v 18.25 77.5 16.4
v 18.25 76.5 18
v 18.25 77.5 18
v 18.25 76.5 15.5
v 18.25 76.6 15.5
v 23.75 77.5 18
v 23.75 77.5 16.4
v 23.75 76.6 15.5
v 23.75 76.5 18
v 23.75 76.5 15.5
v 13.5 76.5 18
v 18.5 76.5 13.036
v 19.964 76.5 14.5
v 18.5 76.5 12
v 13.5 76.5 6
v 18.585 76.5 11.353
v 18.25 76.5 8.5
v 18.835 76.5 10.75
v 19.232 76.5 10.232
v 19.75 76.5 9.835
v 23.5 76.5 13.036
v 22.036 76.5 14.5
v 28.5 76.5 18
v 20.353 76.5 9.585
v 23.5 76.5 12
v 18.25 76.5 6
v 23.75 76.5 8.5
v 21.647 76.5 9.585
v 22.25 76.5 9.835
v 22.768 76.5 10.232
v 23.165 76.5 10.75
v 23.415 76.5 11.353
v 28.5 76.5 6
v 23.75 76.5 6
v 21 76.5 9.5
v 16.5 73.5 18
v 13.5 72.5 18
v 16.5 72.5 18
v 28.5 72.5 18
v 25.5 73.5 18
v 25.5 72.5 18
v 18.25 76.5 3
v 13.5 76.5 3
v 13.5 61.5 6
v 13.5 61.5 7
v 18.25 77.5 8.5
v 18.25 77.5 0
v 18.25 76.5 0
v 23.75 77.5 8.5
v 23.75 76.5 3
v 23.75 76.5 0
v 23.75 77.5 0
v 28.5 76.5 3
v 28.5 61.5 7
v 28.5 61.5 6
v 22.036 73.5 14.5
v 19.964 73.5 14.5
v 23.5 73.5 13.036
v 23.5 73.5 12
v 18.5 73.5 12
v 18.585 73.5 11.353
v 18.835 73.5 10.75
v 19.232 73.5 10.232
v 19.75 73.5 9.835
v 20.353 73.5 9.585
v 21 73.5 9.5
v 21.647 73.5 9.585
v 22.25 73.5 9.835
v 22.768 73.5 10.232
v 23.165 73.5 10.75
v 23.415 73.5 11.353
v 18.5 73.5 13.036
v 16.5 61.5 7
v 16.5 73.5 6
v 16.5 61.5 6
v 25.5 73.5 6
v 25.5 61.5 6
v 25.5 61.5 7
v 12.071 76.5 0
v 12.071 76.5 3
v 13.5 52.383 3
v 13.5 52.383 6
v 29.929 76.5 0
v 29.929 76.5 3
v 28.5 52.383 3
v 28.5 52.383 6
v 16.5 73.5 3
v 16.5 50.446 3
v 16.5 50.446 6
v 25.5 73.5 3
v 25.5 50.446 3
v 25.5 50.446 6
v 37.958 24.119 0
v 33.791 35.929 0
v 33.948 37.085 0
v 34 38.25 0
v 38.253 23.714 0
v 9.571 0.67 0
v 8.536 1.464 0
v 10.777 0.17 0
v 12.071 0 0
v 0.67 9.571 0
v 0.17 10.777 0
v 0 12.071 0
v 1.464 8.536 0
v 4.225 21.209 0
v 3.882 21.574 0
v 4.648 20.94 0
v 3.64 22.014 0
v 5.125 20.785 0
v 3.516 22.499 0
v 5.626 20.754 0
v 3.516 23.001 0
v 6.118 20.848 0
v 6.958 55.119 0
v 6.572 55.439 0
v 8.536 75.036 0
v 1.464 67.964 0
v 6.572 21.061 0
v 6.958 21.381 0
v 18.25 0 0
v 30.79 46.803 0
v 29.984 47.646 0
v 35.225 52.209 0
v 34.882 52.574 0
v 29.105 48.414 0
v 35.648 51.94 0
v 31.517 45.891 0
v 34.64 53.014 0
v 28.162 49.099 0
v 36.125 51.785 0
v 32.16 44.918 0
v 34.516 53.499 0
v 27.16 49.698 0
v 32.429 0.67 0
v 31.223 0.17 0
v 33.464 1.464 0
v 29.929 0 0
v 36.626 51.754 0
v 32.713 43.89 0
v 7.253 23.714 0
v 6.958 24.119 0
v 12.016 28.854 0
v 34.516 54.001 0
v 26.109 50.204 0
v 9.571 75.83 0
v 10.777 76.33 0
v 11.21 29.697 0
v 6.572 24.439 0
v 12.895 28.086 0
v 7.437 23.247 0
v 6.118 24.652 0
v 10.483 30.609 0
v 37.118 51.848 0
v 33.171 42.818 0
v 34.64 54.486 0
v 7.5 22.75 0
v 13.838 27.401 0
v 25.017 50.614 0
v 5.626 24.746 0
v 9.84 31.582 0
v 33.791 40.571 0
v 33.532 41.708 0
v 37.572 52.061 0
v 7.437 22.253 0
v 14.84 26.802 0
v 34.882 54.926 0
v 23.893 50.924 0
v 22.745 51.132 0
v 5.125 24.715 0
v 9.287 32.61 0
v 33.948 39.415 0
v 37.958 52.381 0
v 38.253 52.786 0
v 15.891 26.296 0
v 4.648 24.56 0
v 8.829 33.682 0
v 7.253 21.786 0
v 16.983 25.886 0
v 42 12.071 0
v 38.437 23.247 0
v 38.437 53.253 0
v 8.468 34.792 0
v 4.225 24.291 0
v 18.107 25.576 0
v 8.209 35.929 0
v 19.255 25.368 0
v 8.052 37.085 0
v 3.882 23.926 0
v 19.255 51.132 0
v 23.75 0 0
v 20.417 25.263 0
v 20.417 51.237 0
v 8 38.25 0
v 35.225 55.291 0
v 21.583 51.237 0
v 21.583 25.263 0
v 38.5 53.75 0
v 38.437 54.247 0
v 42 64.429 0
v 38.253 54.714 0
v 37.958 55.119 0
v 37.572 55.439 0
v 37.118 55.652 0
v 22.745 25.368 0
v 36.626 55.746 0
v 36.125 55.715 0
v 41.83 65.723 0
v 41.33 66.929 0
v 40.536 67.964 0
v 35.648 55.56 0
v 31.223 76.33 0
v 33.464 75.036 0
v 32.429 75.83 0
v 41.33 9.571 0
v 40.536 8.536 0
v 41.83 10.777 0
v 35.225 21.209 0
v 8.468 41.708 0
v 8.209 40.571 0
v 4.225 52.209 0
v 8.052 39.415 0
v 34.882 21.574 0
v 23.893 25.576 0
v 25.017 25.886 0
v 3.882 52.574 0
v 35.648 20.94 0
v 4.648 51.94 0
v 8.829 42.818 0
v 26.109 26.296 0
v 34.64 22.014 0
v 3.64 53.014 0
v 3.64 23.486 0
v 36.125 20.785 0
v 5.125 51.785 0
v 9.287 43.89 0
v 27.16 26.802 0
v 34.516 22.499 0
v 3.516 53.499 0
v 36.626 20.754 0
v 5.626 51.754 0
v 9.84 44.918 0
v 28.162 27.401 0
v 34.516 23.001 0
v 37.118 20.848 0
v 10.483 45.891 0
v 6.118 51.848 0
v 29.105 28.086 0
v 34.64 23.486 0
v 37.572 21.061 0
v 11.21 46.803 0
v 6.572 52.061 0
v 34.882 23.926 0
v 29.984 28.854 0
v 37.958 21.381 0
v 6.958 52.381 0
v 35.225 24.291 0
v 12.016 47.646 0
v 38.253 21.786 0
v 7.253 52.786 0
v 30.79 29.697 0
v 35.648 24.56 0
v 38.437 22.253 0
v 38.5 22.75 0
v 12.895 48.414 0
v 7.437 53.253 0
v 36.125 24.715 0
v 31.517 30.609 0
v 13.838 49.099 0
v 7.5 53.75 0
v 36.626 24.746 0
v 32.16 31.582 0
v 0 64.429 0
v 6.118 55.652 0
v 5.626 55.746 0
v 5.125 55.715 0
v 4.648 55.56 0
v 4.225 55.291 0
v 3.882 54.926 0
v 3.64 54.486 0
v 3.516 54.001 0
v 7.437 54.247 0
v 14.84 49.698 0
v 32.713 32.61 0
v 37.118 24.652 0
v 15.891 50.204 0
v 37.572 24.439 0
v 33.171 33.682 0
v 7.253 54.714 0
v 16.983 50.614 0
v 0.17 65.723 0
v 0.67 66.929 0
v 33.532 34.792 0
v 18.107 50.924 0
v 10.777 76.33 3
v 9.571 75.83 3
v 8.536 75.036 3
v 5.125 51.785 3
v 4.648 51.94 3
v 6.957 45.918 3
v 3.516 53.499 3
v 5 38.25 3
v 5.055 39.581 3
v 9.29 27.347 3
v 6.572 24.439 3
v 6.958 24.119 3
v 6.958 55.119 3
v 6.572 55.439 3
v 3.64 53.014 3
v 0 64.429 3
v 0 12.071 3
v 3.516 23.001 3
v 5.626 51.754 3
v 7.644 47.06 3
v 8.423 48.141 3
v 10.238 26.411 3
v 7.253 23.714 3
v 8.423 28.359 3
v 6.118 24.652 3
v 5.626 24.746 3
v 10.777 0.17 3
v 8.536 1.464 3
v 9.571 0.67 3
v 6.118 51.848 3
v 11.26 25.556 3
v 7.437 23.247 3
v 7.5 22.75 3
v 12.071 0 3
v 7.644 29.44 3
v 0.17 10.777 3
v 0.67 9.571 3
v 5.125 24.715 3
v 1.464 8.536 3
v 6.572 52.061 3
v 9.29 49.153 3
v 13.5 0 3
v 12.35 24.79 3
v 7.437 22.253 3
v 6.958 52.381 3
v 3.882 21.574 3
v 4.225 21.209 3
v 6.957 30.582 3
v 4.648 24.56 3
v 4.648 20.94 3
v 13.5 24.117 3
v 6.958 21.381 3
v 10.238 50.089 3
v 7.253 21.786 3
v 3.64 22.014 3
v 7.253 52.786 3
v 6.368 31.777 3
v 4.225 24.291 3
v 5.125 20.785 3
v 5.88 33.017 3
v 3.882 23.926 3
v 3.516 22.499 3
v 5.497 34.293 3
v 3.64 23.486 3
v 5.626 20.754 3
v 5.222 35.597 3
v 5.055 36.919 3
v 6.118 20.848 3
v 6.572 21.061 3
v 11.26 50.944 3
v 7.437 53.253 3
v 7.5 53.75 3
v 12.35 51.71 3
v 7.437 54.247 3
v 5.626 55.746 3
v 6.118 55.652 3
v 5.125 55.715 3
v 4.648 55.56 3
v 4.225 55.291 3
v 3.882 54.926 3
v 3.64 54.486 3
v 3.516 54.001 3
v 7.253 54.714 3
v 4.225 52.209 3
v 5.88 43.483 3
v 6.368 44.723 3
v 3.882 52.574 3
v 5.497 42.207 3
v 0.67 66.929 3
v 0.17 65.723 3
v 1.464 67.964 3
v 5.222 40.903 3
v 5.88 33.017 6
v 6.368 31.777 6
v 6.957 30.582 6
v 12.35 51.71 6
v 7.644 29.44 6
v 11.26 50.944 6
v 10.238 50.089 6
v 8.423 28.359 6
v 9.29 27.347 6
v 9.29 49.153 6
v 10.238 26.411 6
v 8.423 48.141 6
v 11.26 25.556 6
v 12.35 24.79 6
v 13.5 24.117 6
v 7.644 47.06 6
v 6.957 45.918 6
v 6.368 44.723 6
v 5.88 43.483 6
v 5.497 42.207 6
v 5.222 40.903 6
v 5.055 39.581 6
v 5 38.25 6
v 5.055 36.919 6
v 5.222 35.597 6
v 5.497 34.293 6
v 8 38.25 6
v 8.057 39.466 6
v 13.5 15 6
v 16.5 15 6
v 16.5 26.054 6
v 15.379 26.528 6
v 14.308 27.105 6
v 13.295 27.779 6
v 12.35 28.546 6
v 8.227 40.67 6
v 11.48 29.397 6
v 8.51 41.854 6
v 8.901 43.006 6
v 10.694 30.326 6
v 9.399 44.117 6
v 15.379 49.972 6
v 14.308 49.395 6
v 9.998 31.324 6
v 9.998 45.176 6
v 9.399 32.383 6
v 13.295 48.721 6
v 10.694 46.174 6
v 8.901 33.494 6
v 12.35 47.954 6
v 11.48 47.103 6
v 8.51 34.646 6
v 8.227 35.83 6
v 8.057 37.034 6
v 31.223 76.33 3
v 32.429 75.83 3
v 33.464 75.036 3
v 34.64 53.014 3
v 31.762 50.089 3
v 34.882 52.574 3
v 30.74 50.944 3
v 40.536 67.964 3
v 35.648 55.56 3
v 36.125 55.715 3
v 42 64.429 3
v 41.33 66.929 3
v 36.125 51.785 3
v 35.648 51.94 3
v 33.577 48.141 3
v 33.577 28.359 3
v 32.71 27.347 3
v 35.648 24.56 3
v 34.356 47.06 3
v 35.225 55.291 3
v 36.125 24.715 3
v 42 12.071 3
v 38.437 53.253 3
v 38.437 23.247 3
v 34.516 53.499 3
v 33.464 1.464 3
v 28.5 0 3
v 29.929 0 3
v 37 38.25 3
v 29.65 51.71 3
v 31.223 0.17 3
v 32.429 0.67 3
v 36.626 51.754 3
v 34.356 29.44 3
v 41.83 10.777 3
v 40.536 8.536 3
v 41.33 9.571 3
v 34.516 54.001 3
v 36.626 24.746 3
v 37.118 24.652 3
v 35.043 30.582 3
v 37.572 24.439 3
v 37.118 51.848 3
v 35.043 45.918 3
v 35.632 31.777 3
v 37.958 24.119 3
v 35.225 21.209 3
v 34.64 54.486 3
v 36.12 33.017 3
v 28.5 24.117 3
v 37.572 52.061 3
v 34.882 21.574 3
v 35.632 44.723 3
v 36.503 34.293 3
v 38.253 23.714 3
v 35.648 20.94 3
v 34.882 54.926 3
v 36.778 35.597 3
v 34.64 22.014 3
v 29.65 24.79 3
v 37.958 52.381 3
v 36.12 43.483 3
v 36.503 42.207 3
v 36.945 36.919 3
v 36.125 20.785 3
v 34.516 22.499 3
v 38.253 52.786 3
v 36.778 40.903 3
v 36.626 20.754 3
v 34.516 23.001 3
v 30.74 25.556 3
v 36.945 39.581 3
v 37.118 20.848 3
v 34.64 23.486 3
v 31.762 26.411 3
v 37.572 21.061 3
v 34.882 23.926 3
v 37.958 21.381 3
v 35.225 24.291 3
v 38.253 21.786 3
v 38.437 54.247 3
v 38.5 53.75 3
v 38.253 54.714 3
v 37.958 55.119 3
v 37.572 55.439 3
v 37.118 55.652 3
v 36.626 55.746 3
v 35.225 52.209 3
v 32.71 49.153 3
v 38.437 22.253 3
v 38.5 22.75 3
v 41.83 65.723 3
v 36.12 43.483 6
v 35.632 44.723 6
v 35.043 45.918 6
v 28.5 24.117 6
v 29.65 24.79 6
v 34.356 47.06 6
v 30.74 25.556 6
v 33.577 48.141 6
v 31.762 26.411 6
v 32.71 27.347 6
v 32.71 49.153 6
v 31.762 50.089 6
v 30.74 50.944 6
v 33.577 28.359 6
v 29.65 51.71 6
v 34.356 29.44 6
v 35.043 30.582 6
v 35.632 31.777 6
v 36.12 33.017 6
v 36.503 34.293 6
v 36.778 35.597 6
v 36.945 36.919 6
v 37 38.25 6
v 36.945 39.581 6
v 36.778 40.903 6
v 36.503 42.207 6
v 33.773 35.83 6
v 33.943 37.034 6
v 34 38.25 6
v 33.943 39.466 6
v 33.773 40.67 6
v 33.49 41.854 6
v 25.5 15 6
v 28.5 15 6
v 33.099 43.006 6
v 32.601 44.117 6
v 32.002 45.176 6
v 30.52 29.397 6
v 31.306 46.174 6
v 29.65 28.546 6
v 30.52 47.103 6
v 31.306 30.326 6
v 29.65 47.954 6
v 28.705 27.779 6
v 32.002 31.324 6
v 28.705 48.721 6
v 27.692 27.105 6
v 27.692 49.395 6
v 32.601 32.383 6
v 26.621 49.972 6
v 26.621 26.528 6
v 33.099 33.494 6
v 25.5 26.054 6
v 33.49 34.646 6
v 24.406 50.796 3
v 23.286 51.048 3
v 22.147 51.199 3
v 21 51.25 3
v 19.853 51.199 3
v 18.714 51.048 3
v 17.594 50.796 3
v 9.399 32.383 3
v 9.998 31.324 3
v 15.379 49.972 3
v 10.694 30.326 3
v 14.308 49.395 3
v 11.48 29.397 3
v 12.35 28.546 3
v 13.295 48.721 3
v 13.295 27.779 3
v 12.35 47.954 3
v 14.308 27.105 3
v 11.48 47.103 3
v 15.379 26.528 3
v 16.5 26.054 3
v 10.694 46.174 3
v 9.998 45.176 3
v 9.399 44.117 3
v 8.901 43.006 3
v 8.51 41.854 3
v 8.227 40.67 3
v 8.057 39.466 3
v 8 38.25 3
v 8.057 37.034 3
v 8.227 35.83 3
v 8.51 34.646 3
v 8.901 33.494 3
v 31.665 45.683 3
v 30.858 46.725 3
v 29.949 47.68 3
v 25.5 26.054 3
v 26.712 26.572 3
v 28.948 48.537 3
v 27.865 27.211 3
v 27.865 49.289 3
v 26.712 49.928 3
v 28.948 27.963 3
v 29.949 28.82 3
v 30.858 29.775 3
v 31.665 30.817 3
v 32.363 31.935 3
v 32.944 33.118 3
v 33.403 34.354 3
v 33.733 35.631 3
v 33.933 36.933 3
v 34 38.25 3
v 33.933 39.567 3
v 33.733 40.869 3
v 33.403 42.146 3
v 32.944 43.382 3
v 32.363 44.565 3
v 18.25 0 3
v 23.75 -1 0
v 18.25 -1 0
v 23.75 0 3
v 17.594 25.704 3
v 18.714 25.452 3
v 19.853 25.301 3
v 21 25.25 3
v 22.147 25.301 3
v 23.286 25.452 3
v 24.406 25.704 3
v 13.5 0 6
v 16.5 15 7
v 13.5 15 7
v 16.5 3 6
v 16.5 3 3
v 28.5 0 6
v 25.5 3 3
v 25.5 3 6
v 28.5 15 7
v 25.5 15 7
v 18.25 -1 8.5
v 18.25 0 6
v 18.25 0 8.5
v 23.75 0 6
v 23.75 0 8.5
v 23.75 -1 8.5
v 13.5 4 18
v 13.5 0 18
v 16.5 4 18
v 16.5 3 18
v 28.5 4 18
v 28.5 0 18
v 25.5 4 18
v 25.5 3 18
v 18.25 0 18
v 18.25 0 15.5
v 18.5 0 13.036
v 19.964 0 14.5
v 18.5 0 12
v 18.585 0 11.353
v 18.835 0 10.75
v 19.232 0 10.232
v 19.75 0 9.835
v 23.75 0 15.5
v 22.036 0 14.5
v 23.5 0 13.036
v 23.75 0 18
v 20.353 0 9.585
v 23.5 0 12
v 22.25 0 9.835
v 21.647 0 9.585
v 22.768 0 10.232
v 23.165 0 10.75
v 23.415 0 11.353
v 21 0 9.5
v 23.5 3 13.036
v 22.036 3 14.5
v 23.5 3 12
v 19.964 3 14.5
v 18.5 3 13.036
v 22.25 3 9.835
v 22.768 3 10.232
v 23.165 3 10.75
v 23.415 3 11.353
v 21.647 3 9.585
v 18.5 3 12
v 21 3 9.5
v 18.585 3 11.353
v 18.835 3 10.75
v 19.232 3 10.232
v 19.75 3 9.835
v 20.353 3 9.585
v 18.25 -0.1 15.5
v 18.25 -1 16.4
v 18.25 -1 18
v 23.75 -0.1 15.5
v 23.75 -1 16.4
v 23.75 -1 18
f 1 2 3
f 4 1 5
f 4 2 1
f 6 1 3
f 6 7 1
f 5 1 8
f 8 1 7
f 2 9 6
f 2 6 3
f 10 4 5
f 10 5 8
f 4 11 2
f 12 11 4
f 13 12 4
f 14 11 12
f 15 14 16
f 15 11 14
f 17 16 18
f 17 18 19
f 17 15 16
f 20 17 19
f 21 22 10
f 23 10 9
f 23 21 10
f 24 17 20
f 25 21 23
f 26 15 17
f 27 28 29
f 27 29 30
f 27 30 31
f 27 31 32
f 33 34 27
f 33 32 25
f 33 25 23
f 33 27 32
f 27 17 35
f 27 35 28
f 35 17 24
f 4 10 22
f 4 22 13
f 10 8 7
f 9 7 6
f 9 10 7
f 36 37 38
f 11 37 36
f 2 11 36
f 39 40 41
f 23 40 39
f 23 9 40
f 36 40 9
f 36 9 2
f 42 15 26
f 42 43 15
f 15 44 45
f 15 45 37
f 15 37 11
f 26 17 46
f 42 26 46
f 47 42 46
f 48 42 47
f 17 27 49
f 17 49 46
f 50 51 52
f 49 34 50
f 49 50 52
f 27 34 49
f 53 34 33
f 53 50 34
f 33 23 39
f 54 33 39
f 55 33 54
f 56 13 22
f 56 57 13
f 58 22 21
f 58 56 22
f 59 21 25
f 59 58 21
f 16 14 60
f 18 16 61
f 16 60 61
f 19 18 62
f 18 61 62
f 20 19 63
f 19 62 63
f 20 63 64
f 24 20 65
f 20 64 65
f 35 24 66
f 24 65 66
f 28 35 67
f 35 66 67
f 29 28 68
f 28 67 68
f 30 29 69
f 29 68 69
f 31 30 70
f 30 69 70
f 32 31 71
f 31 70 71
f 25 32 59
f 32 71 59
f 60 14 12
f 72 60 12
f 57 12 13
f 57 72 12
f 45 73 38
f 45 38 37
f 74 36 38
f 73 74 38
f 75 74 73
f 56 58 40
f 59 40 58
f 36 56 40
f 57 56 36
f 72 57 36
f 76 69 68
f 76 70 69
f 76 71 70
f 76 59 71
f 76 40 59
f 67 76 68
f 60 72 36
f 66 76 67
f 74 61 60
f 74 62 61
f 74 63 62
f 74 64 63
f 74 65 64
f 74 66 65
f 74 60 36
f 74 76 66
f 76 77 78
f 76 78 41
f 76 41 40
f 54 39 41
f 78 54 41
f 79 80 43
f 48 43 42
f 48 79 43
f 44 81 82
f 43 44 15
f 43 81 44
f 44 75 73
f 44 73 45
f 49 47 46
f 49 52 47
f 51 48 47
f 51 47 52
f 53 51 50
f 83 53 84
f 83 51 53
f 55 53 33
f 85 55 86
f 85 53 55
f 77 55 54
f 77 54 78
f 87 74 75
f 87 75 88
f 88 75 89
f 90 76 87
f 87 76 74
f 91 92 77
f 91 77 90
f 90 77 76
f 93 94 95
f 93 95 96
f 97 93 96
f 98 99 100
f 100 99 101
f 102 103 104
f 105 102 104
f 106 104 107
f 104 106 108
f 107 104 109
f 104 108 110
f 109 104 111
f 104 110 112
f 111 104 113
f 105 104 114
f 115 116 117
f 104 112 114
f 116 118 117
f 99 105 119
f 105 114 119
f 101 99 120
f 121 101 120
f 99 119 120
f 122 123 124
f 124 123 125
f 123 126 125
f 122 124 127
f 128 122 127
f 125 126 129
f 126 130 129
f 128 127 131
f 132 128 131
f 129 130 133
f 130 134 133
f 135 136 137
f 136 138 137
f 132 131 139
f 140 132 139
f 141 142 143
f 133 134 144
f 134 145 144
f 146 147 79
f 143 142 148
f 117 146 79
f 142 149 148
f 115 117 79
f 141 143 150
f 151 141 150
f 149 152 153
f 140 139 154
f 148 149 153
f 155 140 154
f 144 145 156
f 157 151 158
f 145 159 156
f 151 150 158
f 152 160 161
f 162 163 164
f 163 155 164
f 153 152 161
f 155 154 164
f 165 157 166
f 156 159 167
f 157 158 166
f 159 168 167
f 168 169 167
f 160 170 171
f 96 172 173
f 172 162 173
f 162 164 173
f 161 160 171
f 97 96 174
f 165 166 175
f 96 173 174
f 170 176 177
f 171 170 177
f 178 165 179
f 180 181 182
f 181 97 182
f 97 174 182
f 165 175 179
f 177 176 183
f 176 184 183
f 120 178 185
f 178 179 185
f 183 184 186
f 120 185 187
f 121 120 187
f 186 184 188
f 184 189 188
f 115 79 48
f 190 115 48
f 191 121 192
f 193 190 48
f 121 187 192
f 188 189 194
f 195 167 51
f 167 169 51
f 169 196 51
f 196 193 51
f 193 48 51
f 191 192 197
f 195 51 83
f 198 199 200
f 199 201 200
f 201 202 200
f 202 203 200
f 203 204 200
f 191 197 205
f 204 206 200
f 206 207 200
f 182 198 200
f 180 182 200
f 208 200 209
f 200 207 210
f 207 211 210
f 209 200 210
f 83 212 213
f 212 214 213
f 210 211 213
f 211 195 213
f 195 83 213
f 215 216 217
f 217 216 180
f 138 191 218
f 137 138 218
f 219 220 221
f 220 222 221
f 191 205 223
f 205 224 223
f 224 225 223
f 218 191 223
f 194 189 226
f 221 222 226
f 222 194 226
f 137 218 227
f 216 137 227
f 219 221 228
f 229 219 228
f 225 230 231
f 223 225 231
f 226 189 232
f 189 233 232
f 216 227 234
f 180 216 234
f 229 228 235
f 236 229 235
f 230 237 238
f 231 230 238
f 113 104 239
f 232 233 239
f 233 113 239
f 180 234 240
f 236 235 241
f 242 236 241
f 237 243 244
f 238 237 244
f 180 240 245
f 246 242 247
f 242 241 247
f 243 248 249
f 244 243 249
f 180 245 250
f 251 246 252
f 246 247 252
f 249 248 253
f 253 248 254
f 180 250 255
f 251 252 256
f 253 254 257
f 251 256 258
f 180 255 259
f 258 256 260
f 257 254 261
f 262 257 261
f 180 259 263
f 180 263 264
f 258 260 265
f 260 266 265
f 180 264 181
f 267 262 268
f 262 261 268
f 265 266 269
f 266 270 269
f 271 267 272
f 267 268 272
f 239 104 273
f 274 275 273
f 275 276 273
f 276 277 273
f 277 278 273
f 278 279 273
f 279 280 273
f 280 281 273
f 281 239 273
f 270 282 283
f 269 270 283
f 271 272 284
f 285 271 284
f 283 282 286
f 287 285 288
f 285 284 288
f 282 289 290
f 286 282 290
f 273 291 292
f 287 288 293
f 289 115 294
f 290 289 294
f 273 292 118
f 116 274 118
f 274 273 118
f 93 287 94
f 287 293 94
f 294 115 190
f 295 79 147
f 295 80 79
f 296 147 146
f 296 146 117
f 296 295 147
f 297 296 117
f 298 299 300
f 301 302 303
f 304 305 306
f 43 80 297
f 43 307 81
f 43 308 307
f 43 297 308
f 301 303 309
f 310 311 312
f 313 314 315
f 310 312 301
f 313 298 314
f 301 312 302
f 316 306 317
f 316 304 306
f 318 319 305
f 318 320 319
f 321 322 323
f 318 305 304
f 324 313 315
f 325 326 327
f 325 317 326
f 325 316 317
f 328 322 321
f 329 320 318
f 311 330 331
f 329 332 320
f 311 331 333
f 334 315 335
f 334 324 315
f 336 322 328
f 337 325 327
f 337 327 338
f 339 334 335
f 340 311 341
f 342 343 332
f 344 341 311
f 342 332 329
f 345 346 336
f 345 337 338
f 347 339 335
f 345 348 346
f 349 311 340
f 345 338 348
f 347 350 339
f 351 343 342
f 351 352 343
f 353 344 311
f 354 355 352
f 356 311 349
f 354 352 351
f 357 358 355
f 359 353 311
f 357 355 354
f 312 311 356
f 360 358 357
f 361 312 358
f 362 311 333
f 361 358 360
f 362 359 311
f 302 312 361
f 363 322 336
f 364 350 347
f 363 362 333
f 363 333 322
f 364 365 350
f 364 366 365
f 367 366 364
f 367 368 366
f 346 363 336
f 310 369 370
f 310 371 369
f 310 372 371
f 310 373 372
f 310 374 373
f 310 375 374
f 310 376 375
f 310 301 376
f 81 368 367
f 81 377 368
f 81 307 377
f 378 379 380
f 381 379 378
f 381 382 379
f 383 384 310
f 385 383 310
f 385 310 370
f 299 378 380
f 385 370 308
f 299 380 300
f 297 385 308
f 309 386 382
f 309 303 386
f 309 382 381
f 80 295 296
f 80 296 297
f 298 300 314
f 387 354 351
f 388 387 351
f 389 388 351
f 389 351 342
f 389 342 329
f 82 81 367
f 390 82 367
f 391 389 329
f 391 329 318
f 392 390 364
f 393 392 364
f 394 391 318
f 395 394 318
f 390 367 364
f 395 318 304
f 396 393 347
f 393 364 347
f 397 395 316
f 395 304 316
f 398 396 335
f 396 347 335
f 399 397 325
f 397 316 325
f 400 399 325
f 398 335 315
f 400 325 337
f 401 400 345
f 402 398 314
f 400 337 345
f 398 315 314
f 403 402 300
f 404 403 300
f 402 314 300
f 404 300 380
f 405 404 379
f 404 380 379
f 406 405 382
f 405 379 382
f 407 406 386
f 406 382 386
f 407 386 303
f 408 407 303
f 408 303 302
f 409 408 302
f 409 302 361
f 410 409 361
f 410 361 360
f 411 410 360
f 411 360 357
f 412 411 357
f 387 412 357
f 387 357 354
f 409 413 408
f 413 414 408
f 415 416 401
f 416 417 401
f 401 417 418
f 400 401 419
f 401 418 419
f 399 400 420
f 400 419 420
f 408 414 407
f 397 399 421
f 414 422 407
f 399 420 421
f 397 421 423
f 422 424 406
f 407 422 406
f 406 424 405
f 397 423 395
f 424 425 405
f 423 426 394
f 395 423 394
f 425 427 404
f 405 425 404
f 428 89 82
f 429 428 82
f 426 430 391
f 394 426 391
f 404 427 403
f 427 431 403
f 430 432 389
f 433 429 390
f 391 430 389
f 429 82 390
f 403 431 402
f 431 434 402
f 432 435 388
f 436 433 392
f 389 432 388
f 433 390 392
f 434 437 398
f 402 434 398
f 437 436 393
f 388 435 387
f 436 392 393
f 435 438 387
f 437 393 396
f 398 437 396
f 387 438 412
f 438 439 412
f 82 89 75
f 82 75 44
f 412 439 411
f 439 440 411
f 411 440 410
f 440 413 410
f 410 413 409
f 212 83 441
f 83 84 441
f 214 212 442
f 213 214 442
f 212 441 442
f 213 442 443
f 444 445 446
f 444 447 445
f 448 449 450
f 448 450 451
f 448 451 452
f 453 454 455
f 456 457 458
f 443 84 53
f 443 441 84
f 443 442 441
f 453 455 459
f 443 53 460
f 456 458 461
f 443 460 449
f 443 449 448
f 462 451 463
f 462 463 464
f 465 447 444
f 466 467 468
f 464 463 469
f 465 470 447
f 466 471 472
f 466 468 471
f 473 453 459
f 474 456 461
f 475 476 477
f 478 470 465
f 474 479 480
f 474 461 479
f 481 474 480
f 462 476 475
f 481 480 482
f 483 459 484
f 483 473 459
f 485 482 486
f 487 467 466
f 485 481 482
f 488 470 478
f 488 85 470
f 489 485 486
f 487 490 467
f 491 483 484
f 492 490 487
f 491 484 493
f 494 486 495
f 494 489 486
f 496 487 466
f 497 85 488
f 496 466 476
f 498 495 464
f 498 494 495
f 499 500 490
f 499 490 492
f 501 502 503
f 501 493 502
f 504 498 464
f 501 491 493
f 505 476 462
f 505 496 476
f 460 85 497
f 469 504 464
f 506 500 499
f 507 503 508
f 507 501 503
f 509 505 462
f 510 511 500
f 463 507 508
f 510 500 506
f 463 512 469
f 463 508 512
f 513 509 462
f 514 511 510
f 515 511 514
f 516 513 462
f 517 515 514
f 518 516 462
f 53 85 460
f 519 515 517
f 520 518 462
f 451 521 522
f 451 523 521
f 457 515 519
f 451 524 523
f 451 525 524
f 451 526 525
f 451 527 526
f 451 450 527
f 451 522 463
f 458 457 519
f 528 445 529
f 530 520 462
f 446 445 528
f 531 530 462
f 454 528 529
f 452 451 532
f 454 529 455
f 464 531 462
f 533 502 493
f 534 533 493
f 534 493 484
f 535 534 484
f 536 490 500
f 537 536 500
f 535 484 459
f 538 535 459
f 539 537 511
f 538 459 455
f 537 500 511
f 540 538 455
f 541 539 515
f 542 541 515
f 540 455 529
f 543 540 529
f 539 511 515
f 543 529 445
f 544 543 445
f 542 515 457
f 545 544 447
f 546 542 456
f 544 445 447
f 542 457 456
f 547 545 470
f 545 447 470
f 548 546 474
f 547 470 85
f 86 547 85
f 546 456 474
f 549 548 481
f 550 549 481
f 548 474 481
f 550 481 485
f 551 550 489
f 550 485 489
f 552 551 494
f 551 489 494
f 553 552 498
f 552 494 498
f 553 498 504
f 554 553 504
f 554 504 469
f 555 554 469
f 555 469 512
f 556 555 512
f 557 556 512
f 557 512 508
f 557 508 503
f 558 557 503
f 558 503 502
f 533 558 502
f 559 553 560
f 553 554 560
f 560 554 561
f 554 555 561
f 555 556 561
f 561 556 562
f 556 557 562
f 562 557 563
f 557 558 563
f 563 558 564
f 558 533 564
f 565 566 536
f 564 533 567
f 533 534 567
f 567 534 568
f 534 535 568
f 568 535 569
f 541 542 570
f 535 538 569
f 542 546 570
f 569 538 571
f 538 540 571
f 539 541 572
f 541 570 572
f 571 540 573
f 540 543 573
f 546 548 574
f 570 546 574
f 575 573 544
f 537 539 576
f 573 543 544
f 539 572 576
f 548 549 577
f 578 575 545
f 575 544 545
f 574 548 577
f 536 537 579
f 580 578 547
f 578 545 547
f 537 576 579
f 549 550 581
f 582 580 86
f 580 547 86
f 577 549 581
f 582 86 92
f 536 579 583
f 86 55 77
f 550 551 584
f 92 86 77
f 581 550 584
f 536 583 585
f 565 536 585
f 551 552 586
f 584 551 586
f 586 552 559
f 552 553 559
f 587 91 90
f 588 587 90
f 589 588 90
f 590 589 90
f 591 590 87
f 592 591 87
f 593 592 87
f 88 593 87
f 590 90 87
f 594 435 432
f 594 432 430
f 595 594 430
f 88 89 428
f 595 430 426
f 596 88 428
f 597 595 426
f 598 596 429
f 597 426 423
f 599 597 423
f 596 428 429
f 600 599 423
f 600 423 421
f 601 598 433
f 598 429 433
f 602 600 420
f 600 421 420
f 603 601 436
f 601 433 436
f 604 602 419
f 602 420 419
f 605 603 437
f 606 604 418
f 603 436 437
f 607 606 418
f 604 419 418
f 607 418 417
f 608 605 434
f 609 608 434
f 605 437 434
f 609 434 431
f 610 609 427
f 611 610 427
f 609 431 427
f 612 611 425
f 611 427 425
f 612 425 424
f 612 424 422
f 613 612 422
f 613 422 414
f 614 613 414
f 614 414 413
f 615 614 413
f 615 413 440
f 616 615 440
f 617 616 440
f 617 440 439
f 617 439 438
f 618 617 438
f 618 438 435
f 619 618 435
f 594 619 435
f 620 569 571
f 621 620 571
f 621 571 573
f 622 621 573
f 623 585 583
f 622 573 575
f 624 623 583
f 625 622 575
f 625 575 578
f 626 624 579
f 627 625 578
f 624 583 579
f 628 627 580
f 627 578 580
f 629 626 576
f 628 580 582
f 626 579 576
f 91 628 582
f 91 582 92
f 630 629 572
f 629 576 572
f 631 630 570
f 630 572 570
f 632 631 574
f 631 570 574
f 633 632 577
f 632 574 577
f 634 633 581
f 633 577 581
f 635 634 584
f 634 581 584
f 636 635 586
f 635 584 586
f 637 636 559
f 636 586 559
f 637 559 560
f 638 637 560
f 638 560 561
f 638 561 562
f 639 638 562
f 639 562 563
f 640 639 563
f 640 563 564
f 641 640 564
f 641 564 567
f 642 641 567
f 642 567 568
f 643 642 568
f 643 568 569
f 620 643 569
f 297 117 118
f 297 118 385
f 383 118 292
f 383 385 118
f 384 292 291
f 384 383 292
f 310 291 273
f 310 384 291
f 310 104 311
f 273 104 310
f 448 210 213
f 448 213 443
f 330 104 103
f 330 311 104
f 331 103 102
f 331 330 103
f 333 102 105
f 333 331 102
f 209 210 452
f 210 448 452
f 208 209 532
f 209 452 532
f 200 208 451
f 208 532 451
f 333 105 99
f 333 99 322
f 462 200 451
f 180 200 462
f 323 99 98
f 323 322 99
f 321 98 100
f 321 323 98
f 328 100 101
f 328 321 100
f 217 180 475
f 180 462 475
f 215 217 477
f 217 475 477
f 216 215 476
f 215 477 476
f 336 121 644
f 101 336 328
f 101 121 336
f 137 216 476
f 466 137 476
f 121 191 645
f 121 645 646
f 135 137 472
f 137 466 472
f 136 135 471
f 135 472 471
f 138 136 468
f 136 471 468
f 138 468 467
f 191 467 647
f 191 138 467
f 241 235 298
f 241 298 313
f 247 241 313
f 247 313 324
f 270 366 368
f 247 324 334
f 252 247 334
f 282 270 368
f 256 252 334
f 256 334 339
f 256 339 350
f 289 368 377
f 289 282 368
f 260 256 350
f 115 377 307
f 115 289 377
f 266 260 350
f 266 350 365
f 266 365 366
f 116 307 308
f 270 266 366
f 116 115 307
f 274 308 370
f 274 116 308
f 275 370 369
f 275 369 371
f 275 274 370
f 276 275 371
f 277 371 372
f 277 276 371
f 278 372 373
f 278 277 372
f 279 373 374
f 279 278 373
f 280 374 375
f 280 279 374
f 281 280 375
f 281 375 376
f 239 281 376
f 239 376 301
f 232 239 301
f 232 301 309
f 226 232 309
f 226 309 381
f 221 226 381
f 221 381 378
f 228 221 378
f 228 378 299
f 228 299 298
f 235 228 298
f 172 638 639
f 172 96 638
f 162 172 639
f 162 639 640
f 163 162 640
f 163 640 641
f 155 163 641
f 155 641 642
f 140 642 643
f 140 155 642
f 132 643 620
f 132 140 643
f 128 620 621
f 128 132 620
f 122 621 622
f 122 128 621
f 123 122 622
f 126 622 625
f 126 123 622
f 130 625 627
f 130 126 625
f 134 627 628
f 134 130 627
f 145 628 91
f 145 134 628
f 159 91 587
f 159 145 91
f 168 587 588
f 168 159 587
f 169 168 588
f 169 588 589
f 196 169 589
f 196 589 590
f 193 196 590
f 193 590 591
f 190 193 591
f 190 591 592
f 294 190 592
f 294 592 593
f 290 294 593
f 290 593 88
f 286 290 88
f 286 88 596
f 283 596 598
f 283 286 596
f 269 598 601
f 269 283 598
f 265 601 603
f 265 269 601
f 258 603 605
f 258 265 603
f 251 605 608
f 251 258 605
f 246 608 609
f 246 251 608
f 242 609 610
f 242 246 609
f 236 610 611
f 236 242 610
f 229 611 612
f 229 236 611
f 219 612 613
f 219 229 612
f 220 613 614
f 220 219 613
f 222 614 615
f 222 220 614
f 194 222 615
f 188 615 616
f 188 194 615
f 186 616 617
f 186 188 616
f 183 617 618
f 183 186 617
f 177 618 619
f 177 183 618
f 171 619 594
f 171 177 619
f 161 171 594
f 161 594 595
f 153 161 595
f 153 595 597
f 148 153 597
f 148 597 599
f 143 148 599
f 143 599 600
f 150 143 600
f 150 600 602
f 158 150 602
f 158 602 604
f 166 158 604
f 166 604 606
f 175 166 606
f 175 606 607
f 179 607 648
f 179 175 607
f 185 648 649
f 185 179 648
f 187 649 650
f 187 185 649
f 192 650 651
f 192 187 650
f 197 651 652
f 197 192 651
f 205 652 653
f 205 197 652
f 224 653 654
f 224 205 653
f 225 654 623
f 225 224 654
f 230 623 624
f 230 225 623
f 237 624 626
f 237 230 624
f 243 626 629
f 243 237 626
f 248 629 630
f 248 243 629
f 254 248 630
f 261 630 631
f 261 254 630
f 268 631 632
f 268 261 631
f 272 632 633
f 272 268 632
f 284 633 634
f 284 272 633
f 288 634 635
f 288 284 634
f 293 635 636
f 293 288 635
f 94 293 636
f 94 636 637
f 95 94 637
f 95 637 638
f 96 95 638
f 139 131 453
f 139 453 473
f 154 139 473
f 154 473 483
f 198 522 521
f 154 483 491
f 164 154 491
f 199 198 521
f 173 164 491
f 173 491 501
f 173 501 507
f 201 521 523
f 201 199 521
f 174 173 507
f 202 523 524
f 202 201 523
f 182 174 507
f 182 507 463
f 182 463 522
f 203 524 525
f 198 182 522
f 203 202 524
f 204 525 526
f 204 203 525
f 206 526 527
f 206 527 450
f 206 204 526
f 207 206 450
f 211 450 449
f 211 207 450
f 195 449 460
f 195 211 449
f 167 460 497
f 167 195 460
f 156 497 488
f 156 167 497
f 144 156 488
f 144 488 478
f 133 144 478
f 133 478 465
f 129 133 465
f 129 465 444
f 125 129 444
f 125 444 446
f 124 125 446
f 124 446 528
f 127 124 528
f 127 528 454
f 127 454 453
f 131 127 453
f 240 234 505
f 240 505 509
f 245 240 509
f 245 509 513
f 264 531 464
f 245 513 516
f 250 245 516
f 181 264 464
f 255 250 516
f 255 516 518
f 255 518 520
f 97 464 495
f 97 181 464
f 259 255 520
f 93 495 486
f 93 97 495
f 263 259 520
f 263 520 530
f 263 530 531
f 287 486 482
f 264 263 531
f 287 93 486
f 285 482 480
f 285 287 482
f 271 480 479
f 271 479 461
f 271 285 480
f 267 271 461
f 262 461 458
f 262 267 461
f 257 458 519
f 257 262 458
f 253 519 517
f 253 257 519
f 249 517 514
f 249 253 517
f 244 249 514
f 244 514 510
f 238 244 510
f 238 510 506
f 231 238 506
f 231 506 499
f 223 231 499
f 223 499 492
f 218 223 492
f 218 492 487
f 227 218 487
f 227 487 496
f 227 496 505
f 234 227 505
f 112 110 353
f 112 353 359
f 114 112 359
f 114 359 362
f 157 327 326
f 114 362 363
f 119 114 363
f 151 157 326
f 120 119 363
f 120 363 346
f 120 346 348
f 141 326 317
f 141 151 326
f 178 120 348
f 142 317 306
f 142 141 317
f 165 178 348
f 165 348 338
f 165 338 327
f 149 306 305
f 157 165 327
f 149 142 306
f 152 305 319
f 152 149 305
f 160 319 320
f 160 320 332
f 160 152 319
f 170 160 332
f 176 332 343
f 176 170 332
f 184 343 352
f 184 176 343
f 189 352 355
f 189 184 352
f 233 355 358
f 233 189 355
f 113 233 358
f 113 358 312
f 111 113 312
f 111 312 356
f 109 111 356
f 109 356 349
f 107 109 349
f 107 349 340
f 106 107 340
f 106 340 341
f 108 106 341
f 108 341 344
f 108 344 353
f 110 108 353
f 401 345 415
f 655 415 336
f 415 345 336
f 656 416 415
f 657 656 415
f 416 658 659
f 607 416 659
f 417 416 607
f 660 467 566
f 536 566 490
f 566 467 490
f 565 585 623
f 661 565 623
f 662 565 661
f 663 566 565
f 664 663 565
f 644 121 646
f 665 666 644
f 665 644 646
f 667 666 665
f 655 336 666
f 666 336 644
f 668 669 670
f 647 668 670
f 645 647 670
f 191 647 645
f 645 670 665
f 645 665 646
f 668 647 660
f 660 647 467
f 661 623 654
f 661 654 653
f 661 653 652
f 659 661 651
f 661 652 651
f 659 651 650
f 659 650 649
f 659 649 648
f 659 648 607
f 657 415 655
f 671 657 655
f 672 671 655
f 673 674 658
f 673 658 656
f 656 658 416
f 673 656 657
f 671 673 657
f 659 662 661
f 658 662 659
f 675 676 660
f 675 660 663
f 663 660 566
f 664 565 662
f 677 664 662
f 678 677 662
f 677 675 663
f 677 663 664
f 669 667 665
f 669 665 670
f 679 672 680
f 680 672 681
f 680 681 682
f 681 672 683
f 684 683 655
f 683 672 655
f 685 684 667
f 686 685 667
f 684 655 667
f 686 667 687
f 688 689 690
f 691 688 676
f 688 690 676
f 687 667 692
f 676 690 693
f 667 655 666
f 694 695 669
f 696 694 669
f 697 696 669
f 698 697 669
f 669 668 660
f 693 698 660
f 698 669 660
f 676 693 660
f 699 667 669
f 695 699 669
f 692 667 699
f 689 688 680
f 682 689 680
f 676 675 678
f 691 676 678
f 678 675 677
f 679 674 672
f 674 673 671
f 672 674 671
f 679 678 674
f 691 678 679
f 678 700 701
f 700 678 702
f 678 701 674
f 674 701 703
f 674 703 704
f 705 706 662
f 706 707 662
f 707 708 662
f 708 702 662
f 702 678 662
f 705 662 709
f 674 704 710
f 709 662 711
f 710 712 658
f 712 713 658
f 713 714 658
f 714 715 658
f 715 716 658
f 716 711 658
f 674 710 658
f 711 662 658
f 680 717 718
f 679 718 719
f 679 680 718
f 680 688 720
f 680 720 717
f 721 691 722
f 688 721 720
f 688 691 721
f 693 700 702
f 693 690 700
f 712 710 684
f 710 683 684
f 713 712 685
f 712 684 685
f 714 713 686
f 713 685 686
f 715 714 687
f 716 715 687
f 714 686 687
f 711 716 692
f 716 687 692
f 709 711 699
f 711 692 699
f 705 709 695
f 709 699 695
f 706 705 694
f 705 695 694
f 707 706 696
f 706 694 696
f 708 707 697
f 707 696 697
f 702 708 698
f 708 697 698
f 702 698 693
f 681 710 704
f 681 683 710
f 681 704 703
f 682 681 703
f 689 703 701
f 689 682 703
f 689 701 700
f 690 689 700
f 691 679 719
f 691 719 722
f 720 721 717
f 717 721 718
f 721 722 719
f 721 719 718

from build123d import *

# Parameters (mm, degrees)
SKETCH_W        = 42
SKETCH_H        = 76.5
SKETCH_R        = 13
SKETCH_R_2      = 2
PAD_DEPTH       = 3
PAD001_DEPTH    = 3
POCKET_DEPTH    = 3
PAD002_DEPTH    = 12
SKETCH004_W     = 5.5
SKETCH004_H     = 2.5
SKETCH004_H_2   = 8.5
PAD003_DEPTH    = 1
SKETCH005_W     = 5.5
SKETCH005_H     = 2.5
SKETCH005_H_2   = 8.5
PAD004_DEPTH    = 1
POCKET001_DEPTH = 77.501
CHAMFER_SIZE    = 11
CHAMFER001_SIZE = 10
FILLET_R        = 5
CHAMFER002_SIZE = 0.9


with BuildPart() as part:
    # Sketch → Pad (new body)
    with BuildSketch(Plane.XY):
        with Locations((21, 38.25)):
            Rectangle(SKETCH_W, SKETCH_H)
        with Locations((21, 38.25)):
            Circle(SKETCH_R, mode=Mode.SUBTRACT)
        with Locations((5.5, 22.75)):
            Circle(SKETCH_R_2, mode=Mode.SUBTRACT)
        with Locations((5.5, 53.75)):
            Circle(SKETCH_R_2, mode=Mode.SUBTRACT)
        with Locations((36.5, 53.75)):
            Circle(SKETCH_R_2, mode=Mode.SUBTRACT)
        with Locations((36.5, 22.75)):
            Circle(SKETCH_R_2, mode=Mode.SUBTRACT)
    extrude(amount=PAD_DEPTH)

    # Sketch001 → Pad001 (new body)
    with BuildSketch(Plane.XY.offset(3)):
        with BuildLine():
            Line((13.5, 76.5), (28.5, 76.5))
            Line((28.5, 76.5), (28.5, 52.383294))
            ThreePointArc((28.5, 24.116706), (37, 38.25), (28.5, 52.383294))
            Line((28.5, 0), (28.5, 24.116706))
            Line((13.5, 0), (28.5, 0))
            Line((13.5, 24.116706), (13.5, 0))
            ThreePointArc((13.5, 52.383294), (5, 38.25), (13.5, 24.116706))
            Line((13.5, 52.383294), (13.5, 76.5))
        make_face()
    extrude(amount=PAD001_DEPTH)

    # Sketch003 → Pocket (cut)
    with BuildSketch(Plane.XY.offset(6)):
        with BuildLine():
            Line((25.5, 50.446311), (25.5, 73.5))
            Line((25.5, 73.5), (16.5, 73.5))
            Line((16.5, 73.5), (16.5, 50.446311))
            ThreePointArc((16.5, 50.446311), (8, 38.25), (16.5, 26.053689))
            Line((16.5, 3), (16.5, 26.053689))
            Line((25.5, 3), (16.5, 3))
            Line((25.5, 26.053689), (25.5, 3))
            ThreePointArc((25.5, 26.053689), (34, 38.25), (25.5, 50.446311))
        make_face()
    extrude(amount=-POCKET_DEPTH, mode=Mode.SUBTRACT)

    # Sketch007 → Pad002 (new body)
    with BuildSketch(Plane.XY.offset(6)):
        Polygon((13.5, 76.5), (28.5, 76.5), (28.5, 61.5), (25.5, 61.5), (25.5, 73.5), (16.5, 73.5), (16.5, 61.5), (13.5, 61.5), align=None)
        Polygon((28.5, 0), (28.5, 15), (25.5, 15), (25.5, 3), (16.5, 3), (16.5, 15), (13.5, 15), (13.5, 0), align=None)
    extrude(amount=PAD002_DEPTH)

    # Sketch004 → Pad003 (new body)
    with BuildSketch(Plane.XZ):
        with Locations((21, 16.75)):
            Rectangle(SKETCH004_W, SKETCH004_H)
        with Locations((21, 4.25)):
            Rectangle(SKETCH004_W, SKETCH004_H_2)
    extrude(amount=PAD003_DEPTH)

    # Sketch005 → Pad004 (new body)
    with BuildSketch(Plane(origin=(0, 76.5, 0), x_dir=(-1, 0, 0), z_dir=(0, 1, 0))):
        with Locations((-21, 16.75)):
            Rectangle(SKETCH005_W, SKETCH005_H)
        with Locations((-21, 4.25)):
            Rectangle(SKETCH005_W, SKETCH005_H_2)
    extrude(amount=PAD004_DEPTH)

    # Sketch006 → Pocket001 (cut, through all)
    with BuildSketch(Plane.XZ):
        with BuildLine():
            ThreePointArc((18.5, 12), (21, 9.5), (23.5, 12))
            Line((23.5, 13.035534), (23.5, 12))
            Line((22.035534, 14.5), (23.5, 13.035534))
            Line((19.964466, 14.5), (22.035534, 14.5))
            Line((18.5, 13.035534), (19.964466, 14.5))
            Line((18.5, 12), (18.5, 13.035534))
        make_face()
    extrude(amount=-POCKET001_DEPTH, mode=Mode.SUBTRACT)

    # Chamfer
    chamfer_edges = [part.edges().sort_by_distance(p)[0] for p in [
        (15, 61.5, 18),
        (27, 61.5, 18),
        (27, 15, 18),
        (15, 15, 18),
    ]]
    chamfer(chamfer_edges, length=CHAMFER_SIZE)

    # Chamfer001
    chamfer001_edges = [part.edges().sort_by_distance(p)[0] for p in [
        (0, 0, 1.5),
        (42, 0, 1.5),
        (0, 76.5, 1.5),
        (42, 76.5, 1.5),
    ]]
    chamfer(chamfer001_edges, length=CHAMFER001_SIZE)

    # Fillet
    fillet_edges = [part.edges().sort_by_distance(p)[0] for p in [
        (10, 76.5, 1.5),
        (0, 66.5, 1.5),
        (0, 10, 1.5),
        (10, 0, 1.5),
        (32, 0, 1.5),
        (42, 10, 1.5),
        (32, 76.5, 1.5),
        (42, 66.5, 1.5),
    ]]
    fillet(fillet_edges, radius=FILLET_R)

    # Chamfer002
    chamfer002_edges = [part.edges().sort_by_distance(p)[0] for p in [
        (21, 77.5, 15.5),
        (21, -1, 15.5),
    ]]
    chamfer(chamfer002_edges, length=CHAMFER002_SIZE)


solid = part.part
